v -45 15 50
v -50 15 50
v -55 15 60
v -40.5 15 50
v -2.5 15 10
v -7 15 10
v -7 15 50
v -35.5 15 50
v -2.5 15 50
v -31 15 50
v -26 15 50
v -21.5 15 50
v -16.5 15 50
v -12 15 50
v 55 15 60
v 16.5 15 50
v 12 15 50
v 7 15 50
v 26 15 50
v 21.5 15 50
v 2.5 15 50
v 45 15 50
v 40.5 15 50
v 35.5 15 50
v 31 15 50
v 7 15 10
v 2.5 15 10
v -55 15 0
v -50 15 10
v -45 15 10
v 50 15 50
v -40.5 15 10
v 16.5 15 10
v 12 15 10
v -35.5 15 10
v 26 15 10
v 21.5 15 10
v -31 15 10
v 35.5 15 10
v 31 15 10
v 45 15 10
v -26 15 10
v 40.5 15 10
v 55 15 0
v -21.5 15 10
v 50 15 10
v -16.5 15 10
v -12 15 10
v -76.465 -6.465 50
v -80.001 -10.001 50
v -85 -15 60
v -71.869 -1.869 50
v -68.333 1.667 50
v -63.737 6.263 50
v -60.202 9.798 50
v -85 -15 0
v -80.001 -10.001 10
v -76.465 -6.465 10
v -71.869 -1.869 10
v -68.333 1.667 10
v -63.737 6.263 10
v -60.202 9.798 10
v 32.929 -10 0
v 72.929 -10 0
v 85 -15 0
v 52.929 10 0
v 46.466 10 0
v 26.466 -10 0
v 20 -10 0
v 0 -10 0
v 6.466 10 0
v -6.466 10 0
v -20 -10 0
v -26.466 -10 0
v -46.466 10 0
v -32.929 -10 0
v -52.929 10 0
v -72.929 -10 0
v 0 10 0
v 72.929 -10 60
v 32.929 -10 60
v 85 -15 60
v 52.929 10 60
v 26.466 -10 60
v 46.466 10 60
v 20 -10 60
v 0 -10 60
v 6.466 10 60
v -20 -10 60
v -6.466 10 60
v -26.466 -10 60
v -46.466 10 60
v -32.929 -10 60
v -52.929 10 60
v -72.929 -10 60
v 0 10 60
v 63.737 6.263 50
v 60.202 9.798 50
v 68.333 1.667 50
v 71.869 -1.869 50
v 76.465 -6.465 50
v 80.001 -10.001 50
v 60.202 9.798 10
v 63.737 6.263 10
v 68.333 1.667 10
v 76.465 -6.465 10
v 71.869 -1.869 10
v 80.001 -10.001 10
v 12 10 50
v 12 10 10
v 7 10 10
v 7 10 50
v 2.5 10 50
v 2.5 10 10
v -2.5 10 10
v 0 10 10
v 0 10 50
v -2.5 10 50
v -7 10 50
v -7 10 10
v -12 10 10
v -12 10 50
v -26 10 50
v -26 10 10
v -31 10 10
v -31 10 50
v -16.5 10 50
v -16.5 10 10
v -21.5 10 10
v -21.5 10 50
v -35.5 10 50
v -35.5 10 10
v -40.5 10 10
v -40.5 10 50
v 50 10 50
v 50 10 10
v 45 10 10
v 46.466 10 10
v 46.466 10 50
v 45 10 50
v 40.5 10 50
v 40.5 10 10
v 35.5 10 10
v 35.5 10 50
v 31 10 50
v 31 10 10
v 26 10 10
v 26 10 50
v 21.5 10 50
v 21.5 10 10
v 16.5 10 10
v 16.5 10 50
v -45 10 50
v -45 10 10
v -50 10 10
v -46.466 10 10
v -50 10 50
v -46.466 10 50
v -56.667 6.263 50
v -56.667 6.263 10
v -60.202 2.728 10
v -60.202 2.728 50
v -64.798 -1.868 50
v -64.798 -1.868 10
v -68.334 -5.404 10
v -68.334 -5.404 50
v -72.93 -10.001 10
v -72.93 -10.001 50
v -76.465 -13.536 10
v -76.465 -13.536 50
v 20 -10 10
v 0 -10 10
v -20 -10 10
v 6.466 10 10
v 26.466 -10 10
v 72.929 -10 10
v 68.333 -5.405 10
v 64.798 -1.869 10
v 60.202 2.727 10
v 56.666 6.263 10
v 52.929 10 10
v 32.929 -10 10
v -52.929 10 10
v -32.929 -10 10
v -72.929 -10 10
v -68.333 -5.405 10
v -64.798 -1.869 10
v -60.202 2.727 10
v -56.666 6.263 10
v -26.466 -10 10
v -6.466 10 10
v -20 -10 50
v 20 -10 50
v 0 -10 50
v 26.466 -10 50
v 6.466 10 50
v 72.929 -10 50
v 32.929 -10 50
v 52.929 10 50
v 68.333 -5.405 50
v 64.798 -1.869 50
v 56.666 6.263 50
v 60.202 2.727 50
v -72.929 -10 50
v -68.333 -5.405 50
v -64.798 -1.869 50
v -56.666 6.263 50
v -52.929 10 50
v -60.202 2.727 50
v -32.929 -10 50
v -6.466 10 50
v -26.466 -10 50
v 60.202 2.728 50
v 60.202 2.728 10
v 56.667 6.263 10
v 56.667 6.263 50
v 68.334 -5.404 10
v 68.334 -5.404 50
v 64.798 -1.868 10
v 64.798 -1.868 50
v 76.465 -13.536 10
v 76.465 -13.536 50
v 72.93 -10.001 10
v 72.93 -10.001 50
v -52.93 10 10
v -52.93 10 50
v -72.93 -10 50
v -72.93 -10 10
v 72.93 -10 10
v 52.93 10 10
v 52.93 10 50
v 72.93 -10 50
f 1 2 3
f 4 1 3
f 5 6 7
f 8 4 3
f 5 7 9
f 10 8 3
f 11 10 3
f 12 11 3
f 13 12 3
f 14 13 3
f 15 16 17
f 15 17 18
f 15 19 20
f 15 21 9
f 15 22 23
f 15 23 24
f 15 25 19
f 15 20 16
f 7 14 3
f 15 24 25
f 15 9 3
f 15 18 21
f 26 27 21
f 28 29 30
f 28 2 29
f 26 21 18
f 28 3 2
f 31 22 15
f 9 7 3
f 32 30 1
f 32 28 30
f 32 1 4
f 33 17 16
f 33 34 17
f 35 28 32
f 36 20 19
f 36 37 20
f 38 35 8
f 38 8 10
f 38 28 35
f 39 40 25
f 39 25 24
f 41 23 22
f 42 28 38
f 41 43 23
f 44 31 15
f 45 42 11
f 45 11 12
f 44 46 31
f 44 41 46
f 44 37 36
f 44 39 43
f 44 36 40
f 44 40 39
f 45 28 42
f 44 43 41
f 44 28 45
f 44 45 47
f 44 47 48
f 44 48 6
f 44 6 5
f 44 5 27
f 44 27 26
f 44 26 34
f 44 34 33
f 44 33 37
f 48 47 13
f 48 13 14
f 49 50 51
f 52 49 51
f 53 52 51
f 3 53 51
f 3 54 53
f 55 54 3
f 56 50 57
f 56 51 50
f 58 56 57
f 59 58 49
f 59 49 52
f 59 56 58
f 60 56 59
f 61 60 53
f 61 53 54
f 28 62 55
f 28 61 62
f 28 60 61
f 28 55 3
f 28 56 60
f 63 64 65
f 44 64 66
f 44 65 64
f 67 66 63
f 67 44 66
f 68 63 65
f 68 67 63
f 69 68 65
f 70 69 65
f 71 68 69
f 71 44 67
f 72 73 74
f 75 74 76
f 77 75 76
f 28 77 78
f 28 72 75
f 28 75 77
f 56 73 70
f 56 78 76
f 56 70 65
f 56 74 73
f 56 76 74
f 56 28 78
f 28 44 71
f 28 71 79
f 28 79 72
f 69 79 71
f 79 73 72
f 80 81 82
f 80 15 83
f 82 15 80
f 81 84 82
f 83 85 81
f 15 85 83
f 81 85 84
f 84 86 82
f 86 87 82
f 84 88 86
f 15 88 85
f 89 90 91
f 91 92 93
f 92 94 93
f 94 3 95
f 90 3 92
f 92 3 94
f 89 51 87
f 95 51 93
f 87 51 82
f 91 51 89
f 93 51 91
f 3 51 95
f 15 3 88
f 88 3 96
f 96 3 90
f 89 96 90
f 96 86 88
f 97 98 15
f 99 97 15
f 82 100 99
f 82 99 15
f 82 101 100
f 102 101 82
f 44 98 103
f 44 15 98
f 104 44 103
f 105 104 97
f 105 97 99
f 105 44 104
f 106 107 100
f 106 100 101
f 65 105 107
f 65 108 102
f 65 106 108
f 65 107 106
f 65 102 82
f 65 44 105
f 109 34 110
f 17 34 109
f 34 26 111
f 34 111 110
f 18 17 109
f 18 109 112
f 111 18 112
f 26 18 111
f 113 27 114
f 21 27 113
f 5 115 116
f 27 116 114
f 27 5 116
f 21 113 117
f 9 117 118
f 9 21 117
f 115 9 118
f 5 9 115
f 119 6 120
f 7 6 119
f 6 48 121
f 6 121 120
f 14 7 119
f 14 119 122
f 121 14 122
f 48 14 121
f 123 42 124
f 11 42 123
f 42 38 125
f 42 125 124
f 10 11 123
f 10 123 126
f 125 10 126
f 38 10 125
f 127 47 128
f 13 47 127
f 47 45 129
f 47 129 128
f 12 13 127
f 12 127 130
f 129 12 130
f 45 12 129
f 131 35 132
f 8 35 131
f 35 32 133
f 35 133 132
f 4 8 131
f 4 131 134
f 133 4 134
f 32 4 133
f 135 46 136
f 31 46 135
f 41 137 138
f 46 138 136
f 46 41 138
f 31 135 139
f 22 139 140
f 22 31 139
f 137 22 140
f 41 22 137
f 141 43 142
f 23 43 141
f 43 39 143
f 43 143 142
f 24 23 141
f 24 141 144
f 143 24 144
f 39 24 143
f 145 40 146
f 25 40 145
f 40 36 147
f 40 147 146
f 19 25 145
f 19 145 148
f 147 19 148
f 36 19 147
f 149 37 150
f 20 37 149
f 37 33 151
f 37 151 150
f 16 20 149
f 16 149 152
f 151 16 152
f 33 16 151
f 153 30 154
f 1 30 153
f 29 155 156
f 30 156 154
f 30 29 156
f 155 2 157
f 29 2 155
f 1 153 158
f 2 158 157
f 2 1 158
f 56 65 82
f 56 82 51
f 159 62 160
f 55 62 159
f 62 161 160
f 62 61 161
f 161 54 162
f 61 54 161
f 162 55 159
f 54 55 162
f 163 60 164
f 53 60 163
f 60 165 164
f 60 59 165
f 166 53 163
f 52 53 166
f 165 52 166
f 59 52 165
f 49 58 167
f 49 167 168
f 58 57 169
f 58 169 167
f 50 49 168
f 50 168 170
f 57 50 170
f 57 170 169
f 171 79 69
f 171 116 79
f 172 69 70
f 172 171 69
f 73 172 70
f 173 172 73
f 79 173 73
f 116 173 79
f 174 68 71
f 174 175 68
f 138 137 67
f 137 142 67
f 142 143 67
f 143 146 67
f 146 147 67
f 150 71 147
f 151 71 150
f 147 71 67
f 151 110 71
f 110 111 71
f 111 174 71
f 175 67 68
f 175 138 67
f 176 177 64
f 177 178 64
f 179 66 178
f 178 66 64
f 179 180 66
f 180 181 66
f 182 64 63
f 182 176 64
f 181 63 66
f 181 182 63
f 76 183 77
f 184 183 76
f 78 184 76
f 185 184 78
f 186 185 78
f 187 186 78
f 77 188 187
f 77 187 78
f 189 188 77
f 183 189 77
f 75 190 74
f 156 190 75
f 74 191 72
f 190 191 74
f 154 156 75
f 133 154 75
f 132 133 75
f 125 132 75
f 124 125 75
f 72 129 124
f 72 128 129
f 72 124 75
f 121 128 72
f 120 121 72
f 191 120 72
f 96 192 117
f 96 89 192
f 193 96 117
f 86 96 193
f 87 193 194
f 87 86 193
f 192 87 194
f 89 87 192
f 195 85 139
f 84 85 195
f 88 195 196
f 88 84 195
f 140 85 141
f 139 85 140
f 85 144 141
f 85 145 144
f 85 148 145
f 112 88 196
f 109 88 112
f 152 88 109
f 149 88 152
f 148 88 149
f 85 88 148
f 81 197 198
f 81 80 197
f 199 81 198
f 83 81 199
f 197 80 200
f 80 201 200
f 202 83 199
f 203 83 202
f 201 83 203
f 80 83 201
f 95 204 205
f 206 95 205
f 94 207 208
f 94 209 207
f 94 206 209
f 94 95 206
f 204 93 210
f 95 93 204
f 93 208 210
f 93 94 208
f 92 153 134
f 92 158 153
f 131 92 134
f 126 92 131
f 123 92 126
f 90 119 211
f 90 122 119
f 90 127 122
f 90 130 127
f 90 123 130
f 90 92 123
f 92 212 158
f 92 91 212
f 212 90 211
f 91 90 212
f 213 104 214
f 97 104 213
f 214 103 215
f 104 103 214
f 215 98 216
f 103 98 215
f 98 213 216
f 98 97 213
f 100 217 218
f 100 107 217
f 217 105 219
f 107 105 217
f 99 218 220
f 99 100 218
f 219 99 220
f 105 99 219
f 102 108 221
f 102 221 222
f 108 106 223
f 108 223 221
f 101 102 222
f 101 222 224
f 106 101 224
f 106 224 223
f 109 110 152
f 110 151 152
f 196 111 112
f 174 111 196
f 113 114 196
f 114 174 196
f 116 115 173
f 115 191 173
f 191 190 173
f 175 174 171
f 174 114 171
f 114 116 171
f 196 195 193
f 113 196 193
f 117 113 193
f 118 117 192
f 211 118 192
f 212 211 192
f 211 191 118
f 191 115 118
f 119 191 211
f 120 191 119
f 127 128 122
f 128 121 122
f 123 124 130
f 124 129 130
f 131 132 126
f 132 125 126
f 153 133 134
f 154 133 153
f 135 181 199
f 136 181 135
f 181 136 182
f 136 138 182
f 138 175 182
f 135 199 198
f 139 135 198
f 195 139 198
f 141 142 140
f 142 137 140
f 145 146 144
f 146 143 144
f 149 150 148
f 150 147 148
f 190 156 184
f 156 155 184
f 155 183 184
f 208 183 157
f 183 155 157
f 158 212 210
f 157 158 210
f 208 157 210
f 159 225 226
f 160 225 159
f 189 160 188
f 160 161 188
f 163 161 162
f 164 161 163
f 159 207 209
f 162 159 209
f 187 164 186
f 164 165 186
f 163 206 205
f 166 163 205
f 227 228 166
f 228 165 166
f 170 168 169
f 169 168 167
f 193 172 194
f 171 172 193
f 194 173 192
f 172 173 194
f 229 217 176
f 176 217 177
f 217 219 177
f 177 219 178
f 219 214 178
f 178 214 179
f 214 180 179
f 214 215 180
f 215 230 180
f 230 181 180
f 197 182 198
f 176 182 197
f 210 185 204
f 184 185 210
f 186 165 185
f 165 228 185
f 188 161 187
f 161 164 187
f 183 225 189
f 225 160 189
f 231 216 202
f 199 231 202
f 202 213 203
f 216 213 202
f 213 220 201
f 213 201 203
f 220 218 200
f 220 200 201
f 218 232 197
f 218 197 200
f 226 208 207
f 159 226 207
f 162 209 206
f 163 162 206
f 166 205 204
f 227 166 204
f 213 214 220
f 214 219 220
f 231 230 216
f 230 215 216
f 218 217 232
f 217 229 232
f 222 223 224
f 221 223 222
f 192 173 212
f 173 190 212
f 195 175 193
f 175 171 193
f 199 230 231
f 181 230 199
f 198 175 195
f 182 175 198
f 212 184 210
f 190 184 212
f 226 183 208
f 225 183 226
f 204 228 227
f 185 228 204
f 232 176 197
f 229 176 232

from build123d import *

# Parameters (mm, degrees)
PAD001_DEPTH           = 40
PAD_DEPTH              = 60
POCKET_DEPTH           = 425.514338
SKETCH002_W            = 5
SKETCH002_H            = 40
POCKET001_DEPTH        = 5
LINEARPATTERN_COUNT    = 11
LINEARPATTERN_PITCH    = 9.5
SKETCH003_W            = 5
SKETCH003_H            = 40
POCKET002_DEPTH        = 5
LINEARPATTERN001_COUNT = 3
LINEARPATTERN001_PITCH = 11.5
SKETCH004_W            = 5
SKETCH004_H            = 40
POCKET003_DEPTH        = 5
LINEARPATTERN002_COUNT = 3
LINEARPATTERN002_PITCH = 11.5


with BuildPart() as body001:
    # Sketch005 → Pad001 (new body)
    with BuildSketch(Plane.XY):
        Polygon((-52.93, 10), (52.93, 10), (72.93, -10), (-72.93, -10), align=None)
    extrude(amount=PAD001_DEPTH)


with BuildPart() as body001_1:
    # Body001 placement: moved
    add(body001.part.moved(Location((0, 0, 10))))


with BuildPart() as cut:
    # Sketch → Pad (new body)
    with BuildSketch(Plane.XY):
        Polygon((-55, 15), (55, 15), (85, -15), (-85, -15), align=None)
    extrude(amount=PAD_DEPTH)

    # Sketch001 (on Face6 of Pad) → Pocket (cut, through all)
    with BuildSketch(Plane.XY.offset(60)):
        Polygon((-72.928932, -10), (-52.928932, 10), (-32.928932, -10), align=None)
        Polygon((-46.465976, 10), (-26.465976, -10), (-6.465976, 10), align=None)
        Polygon((-20, -10), (0, 10), (0, -10), align=None)
    pocket = extrude(amount=-POCKET_DEPTH, mode=Mode.SUBTRACT)

    # Mirrored: Pocket across Sketch001 V_Axis
    add(pocket.mirror(Plane(origin=(0, 0, 60), x_dir=(0, 0, 1), z_dir=(1, 0, 0))), mode=Mode.SUBTRACT)

    # Sketch002 (on Face1 of Mirrored) → Pocket001 (cut)
    with BuildSketch(Plane(origin=(0, 15, 0), x_dir=(-1, 0, 0), z_dir=(0, 1, 0))):
        with Locations((-47.5, 30)):
            Rectangle(SKETCH002_W, SKETCH002_H)
    pocket001 = extrude(amount=-POCKET001_DEPTH, mode=Mode.SUBTRACT)

    # LinearPattern: Pocket001 ×11
    with Locations(*[(-i * LINEARPATTERN_PITCH, 0, 0) for i in range(1, LINEARPATTERN_COUNT)]):
        add(pocket001, mode=Mode.SUBTRACT)

    # Sketch003 (on Face5 of LinearPattern) → Pocket002 (cut)
    with BuildSketch(Plane(origin=(35, 35, 0), x_dir=(-0.707107, 0.707107, 0), z_dir=(0.707107, 0.707107, 0))):
        with Locations((-61.140678, 30)):
            Rectangle(SKETCH003_W, SKETCH003_H)
    pocket002 = extrude(amount=-POCKET002_DEPTH, mode=Mode.SUBTRACT)

    # LinearPattern001: Pocket002 ×3
    with Locations(*[Vector(-0.707107, 0.707107, 0) * (i * LINEARPATTERN001_PITCH) for i in range(1, LINEARPATTERN001_COUNT)]):
        add(pocket002, mode=Mode.SUBTRACT)

    # Sketch004 (on Face2 of LinearPattern001) → Pocket003 (cut)
    with BuildSketch(Plane(origin=(-35, 35, 0), x_dir=(-0.707107, -0.707107, 0), z_dir=(-0.707107, 0.707107, 0))):
        with Locations((61.140678, 30)):
            Rectangle(SKETCH004_W, SKETCH004_H)
    pocket003 = extrude(amount=-POCKET003_DEPTH, mode=Mode.SUBTRACT)

    # LinearPattern002: Pocket003 ×3
    with Locations(*[Vector(0.707107, 0.707107, 0) * (i * LINEARPATTERN002_PITCH) for i in range(1, LINEARPATTERN002_COUNT)]):
        add(pocket003, mode=Mode.SUBTRACT)

    # Cut: cut Body001
    add(body001_1.part, mode=Mode.SUBTRACT)


solid = cut.part
